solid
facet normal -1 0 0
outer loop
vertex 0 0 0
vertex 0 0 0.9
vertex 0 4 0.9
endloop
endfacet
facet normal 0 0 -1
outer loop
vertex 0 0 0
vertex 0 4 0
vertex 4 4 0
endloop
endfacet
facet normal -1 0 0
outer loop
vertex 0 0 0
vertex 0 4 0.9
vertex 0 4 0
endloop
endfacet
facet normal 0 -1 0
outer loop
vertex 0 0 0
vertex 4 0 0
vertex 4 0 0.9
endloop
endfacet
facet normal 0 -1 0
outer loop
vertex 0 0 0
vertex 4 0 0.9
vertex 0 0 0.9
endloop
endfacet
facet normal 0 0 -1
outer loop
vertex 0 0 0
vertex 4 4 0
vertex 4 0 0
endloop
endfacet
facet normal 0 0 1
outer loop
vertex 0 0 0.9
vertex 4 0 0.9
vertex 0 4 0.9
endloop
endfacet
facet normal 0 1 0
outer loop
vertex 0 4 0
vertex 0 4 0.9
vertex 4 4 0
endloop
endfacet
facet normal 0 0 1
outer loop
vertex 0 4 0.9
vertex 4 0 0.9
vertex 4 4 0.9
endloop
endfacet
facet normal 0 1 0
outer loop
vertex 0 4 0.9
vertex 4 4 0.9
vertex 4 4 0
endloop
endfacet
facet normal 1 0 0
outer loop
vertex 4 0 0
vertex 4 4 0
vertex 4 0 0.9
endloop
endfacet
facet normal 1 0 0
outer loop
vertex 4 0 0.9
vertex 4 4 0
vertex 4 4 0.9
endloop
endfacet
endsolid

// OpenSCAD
/* Warning, this is a very basic generator with a lot of approximation 
input data : [VQFN, 7EX, 4x4x0.9mm, 16, , B, C04-00362B]
generated by com.zoubworld.electronics.cad.model3d.Basic
Date : Sun Feb 15 10:50:48 CET 2026
*/

//body
color("black")
translate([0,0,0])
cube([4.0,4.0,0.9], center=false);
